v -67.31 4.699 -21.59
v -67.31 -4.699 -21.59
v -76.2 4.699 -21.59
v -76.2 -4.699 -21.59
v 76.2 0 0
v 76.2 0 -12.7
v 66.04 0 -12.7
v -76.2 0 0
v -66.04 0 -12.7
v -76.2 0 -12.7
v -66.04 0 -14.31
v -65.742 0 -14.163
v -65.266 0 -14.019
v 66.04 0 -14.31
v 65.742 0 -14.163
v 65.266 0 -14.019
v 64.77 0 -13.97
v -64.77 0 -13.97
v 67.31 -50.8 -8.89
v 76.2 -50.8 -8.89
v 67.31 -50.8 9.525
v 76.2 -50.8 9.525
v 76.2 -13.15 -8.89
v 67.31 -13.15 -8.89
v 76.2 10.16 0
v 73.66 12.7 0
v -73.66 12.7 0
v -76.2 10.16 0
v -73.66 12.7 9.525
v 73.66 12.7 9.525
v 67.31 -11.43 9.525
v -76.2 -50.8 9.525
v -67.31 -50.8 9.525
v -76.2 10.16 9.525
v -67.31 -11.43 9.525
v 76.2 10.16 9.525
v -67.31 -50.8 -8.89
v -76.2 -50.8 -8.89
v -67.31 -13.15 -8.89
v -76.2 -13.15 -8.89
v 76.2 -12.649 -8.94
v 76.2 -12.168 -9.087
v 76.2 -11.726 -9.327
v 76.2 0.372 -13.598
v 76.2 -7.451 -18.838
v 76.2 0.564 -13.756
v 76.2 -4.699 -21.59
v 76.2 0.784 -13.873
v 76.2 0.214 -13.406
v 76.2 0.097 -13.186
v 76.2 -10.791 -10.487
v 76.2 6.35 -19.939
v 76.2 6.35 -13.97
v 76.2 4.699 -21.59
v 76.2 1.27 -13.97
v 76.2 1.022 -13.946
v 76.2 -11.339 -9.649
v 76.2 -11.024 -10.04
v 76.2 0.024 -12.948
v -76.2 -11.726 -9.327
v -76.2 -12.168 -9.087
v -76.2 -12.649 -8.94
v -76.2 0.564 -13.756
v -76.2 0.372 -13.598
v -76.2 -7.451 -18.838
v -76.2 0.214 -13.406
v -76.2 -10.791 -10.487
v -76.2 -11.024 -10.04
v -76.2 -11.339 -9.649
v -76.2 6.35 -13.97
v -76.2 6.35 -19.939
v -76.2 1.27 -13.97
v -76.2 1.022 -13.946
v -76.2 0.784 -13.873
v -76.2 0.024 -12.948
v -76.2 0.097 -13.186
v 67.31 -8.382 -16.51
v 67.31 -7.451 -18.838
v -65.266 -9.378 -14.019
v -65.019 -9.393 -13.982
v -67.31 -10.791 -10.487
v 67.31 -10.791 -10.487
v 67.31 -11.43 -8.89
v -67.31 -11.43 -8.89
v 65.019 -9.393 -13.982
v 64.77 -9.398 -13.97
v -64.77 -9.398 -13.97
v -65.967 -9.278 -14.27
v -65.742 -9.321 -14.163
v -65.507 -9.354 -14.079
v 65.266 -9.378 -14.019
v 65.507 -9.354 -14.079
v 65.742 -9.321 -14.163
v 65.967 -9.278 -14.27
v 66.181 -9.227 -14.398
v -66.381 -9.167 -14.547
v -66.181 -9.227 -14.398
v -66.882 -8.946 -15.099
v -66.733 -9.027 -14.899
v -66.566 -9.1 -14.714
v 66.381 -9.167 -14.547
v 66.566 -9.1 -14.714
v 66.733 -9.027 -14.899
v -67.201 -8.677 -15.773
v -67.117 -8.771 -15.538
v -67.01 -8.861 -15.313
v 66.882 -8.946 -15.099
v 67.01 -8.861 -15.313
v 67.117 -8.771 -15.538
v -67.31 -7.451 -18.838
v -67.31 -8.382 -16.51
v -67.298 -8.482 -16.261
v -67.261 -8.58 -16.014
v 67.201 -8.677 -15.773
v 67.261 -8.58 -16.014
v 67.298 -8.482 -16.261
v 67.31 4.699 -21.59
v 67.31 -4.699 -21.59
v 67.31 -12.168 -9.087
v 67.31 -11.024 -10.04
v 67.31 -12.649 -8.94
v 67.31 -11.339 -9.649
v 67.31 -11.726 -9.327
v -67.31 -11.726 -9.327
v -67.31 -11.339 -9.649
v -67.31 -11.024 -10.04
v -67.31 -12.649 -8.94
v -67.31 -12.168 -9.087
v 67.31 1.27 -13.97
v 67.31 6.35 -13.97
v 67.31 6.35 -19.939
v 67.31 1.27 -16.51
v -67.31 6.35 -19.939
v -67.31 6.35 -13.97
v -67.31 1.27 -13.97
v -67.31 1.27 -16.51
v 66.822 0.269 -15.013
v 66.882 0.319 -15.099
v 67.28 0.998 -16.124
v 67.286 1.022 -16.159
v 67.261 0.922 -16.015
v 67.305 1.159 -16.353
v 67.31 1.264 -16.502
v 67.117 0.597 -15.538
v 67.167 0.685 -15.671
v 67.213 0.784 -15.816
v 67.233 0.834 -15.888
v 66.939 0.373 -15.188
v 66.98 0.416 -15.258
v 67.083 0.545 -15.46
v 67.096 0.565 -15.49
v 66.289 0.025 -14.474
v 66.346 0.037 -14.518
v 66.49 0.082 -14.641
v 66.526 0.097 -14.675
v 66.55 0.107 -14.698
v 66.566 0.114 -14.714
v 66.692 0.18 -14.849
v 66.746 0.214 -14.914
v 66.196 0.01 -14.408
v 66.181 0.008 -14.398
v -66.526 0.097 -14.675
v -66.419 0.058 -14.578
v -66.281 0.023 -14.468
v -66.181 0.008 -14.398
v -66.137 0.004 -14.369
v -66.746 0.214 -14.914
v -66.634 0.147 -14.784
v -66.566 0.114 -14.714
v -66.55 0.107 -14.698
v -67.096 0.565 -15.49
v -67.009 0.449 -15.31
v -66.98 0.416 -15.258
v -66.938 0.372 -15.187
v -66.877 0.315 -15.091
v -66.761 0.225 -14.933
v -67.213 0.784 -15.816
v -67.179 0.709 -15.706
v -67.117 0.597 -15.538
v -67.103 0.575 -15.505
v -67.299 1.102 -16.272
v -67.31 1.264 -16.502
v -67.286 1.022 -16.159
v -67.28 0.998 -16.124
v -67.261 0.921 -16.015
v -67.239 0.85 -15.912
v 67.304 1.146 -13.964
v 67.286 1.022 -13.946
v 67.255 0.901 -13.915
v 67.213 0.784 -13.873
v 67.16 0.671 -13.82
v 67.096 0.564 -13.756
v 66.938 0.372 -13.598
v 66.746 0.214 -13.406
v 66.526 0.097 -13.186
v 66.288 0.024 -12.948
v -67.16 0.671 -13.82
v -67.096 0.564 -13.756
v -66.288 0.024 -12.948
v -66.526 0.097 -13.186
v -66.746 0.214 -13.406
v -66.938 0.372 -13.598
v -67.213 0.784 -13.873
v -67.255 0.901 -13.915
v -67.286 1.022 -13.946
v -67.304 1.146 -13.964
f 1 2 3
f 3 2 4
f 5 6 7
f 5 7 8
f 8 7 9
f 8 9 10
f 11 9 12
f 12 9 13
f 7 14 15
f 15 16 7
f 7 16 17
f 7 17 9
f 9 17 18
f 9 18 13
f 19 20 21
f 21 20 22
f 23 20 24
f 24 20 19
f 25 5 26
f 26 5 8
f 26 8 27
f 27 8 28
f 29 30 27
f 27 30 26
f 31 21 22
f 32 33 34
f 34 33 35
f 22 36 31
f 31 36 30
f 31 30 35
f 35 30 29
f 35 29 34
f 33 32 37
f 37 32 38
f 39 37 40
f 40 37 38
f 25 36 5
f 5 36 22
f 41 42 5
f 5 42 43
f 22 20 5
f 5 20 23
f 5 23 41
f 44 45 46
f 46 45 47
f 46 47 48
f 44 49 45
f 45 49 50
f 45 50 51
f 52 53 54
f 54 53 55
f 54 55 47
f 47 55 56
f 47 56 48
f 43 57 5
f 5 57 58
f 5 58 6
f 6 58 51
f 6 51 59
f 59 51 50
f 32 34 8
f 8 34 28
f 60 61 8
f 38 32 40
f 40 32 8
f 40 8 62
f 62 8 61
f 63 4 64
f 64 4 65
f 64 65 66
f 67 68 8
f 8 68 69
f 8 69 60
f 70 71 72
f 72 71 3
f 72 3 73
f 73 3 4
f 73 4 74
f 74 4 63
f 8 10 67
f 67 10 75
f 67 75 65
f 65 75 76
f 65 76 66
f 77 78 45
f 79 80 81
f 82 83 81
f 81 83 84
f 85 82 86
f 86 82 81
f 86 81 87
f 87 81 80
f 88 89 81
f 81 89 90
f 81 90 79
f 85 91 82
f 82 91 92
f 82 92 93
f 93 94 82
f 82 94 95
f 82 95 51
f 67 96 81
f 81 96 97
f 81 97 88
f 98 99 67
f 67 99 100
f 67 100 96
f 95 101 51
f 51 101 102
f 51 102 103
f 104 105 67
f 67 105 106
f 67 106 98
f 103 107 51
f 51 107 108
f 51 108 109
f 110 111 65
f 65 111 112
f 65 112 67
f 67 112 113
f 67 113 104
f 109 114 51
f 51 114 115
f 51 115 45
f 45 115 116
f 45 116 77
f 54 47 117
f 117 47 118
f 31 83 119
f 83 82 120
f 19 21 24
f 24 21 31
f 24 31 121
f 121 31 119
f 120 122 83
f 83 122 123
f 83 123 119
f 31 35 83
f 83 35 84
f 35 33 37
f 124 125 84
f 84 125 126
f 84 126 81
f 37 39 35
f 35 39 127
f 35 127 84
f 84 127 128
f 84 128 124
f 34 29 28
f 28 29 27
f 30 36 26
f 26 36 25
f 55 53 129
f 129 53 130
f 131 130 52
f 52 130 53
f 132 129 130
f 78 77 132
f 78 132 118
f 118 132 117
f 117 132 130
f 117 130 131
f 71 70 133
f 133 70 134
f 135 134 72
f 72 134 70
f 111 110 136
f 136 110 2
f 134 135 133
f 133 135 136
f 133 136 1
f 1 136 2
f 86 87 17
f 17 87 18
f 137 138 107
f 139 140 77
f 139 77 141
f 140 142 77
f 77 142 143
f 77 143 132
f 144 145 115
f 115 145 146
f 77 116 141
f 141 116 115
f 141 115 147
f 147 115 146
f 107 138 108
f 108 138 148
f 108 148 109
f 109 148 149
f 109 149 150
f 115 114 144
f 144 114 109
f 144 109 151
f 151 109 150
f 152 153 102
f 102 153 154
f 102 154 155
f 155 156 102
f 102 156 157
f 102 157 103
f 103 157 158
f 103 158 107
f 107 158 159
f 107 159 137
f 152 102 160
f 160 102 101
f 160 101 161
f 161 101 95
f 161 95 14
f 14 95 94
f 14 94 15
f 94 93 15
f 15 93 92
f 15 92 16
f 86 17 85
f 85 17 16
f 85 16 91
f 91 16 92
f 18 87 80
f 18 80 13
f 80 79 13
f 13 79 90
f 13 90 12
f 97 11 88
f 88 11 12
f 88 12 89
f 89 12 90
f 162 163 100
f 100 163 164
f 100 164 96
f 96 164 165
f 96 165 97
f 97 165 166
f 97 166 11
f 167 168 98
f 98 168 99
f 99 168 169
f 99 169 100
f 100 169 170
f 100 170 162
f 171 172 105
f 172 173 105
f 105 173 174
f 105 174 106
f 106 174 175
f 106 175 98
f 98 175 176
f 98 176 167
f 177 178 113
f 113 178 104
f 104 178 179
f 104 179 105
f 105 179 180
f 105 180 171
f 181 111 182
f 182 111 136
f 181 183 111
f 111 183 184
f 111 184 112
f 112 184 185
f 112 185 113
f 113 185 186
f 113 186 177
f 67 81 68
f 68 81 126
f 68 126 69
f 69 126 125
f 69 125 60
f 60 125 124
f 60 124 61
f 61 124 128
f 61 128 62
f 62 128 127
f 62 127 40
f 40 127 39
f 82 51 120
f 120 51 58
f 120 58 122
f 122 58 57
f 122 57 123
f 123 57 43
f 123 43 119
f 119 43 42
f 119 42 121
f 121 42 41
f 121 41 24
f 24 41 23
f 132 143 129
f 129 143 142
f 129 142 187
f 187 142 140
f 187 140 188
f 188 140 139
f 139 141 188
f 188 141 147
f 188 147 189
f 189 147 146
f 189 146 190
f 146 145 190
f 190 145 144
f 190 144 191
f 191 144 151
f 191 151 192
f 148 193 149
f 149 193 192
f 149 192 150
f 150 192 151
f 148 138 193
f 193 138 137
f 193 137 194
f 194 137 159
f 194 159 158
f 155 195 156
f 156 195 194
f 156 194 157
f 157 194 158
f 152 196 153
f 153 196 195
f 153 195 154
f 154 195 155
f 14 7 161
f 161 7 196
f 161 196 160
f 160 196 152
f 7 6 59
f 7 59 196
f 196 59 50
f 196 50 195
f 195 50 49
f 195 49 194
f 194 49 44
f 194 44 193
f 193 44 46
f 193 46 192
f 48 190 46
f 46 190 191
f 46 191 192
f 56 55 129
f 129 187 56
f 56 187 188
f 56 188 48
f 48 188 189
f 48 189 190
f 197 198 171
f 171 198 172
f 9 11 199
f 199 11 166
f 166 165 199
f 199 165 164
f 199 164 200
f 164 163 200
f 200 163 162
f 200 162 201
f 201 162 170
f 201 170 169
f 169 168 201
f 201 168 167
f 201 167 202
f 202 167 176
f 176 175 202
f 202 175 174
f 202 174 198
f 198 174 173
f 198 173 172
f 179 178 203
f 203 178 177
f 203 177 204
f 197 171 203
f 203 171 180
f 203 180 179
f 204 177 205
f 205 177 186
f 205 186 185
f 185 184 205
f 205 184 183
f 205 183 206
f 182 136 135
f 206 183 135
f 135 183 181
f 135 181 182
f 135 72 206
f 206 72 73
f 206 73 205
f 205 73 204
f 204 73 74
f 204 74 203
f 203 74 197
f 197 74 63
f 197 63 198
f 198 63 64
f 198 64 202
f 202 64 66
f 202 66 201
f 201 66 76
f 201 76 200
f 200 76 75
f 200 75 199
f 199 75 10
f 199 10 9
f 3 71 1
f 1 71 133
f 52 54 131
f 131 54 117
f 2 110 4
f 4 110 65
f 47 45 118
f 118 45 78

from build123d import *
from OCP.BRepFilletAPI import BRepFilletAPI_MakeChamfer

# Parameters (mm, degrees)
BOSS_EXTRUDE1_DEPTH = 76.2
BOSS_EXTRUDE3_DEPTH = 152.4
SKETCH2_W           = 134.62
SKETCH2_H           = 39.37
CUT_EXTRUDE1_DEPTH  = 94.414090077
CHAMFER1_SIZE       = 2.54
SKETCH5_W           = 7.62
SKETCH5_H           = 6.35
BOSS_EXTRUDE4_DEPTH = 8.89
SKETCH6_W           = 134.62
SKETCH6_H           = 7.62
CUT_EXTRUDE2_DEPTH  = 95.091487925
FILLET1_R           = 2.54
FILLET2_R           = 1.27
CHAMFER2_SIZE       = 1.651
CHAMFER2_SIZE2      = 2.963635699


with BuildPart() as part:
    # Sketch1 → Boss-Extrude1 (new, symmetric)
    with BuildSketch(Plane(origin=(0, 0, 0), x_dir=(0, 0, -1), z_dir=(1, 0, 0))):
        Polygon((0, 0), (0, 12.7), (-9.525, 12.7), (-9.525, -50.8), (8.89, -50.8), (8.89, 0), align=None)
    extrude(amount=BOSS_EXTRUDE1_DEPTH, both=True)

    # Sketch4 → Boss-Extrude3 (add)
    with BuildSketch(Plane(origin=(76.2, 0, 0), x_dir=(0, 0, -1), z_dir=(1, 0, 0))):
        Polygon((8.89, 0), (21.59, 0), (21.59, -6.35), (8.89, -11.43), align=None)
    extrude(amount=-BOSS_EXTRUDE3_DEPTH)

    # Sketch2 → Cut-Extrude1 (cut, through all)
    with BuildSketch(Plane(origin=(0, 0, -8.89), x_dir=(-1, 0, 0), z_dir=(0, 0, -1))):
        with Locations((0, -31.115)):
            Rectangle(SKETCH2_W, SKETCH2_H)
    extrude(amount=-CUT_EXTRUDE1_DEPTH, mode=Mode.SUBTRACT)

    # Chamfer1
    chamfer1_edges = [part.edges().sort_by_distance(p)[0] for p in [
        (76.2, 12.7, 4.7625),
        (-76.2, 12.7, 4.7625),
    ]]
    chamfer(chamfer1_edges, length=CHAMFER1_SIZE)

    # Sketch5 → Boss-Extrude4 (add)
    with BuildSketch(Plane(origin=(76.2, 0, 0), x_dir=(0, 0, -1), z_dir=(1, 0, 0))):
        with Locations((17.78, 3.175)):
            Rectangle(SKETCH5_W, SKETCH5_H)
    boss_extrude4 = extrude(amount=-BOSS_EXTRUDE4_DEPTH)

    # Mirror1: Boss-Extrude4 across plane
    add(boss_extrude4.mirror(Plane(origin=(0, 0, 0), x_dir=(0, 0, 1), z_dir=(1, 0, 0))))

    # Sketch6 → Cut-Extrude2 (cut, through all)
    with BuildSketch(Plane(origin=(0, 0, 0), x_dir=(1, 0, 0), z_dir=(0, 1, 0))):
        with Locations((0, 17.78)):
            Rectangle(SKETCH6_W, SKETCH6_H)
    extrude(amount=-CUT_EXTRUDE2_DEPTH, mode=Mode.SUBTRACT)

    # Fillet1
    fillet1_edges = [part.edges().sort_by_distance(p)[0] for p in [
        (-71.755, -11.43, -8.89),
        (71.755, -11.43, -8.89),
        (-67.31, -4.699, -13.97),
        (67.31, -4.699, -13.97),
    ]]
    fillet(fillet1_edges, radius=FILLET1_R)

    # Fillet2
    fillet2_edges = [part.edges().sort_by_distance(p)[0] for p in [
        (67.31, 0, -15.24),
        (-67.31, 0, -15.24),
        (71.755, 0, -13.97),
        (-71.755, 0, -13.97),
    ]]
    fillet(fillet2_edges, radius=FILLET2_R)

    # Chamfer2: one chamfer whose edges measure the first distance from different faces: ONE call of the kernel's chamfer builder (chamfer() names one face for all edges)
    chamfer2_edges_1 = [part.edges().sort_by_distance(p)[0] for p in [
        (-71.755, -6.35, -21.59),
    ]]
    chamfer2_side_1 = [part.faces().sort_by_distance(p)[0] for p in [
        (-71.755, 0, -21.59),
    ]]
    chamfer2_edges_2 = [part.edges().sort_by_distance(p)[0] for p in [
        (71.755, 6.35, -21.59),
        (-71.755, 6.35, -21.59),
    ]]
    chamfer2_edges_3 = [part.edges().sort_by_distance(p)[0] for p in [
        (71.755, -6.35, -21.59),
    ]]
    chamfer2_side_3 = [part.faces().sort_by_distance(p)[0] for p in [
        (71.755, 0, -21.59),
    ]]
    chamfer2 = BRepFilletAPI_MakeChamfer(part.part.solid().wrapped)
    for e in chamfer2_edges_1:
        chamfer2.Add(CHAMFER2_SIZE, CHAMFER2_SIZE2, e.wrapped, chamfer2_side_1[0].wrapped)  # the first distance lies on this face
    for e in chamfer2_edges_2:
        chamfer2.Add(CHAMFER2_SIZE, e.wrapped)
    for e in chamfer2_edges_3:
        chamfer2.Add(CHAMFER2_SIZE, CHAMFER2_SIZE2, e.wrapped, chamfer2_side_3[0].wrapped)  # the first distance lies on this face
    add(Compound.cast(chamfer2.Shape()), mode=Mode.REPLACE)


solid = part.part
